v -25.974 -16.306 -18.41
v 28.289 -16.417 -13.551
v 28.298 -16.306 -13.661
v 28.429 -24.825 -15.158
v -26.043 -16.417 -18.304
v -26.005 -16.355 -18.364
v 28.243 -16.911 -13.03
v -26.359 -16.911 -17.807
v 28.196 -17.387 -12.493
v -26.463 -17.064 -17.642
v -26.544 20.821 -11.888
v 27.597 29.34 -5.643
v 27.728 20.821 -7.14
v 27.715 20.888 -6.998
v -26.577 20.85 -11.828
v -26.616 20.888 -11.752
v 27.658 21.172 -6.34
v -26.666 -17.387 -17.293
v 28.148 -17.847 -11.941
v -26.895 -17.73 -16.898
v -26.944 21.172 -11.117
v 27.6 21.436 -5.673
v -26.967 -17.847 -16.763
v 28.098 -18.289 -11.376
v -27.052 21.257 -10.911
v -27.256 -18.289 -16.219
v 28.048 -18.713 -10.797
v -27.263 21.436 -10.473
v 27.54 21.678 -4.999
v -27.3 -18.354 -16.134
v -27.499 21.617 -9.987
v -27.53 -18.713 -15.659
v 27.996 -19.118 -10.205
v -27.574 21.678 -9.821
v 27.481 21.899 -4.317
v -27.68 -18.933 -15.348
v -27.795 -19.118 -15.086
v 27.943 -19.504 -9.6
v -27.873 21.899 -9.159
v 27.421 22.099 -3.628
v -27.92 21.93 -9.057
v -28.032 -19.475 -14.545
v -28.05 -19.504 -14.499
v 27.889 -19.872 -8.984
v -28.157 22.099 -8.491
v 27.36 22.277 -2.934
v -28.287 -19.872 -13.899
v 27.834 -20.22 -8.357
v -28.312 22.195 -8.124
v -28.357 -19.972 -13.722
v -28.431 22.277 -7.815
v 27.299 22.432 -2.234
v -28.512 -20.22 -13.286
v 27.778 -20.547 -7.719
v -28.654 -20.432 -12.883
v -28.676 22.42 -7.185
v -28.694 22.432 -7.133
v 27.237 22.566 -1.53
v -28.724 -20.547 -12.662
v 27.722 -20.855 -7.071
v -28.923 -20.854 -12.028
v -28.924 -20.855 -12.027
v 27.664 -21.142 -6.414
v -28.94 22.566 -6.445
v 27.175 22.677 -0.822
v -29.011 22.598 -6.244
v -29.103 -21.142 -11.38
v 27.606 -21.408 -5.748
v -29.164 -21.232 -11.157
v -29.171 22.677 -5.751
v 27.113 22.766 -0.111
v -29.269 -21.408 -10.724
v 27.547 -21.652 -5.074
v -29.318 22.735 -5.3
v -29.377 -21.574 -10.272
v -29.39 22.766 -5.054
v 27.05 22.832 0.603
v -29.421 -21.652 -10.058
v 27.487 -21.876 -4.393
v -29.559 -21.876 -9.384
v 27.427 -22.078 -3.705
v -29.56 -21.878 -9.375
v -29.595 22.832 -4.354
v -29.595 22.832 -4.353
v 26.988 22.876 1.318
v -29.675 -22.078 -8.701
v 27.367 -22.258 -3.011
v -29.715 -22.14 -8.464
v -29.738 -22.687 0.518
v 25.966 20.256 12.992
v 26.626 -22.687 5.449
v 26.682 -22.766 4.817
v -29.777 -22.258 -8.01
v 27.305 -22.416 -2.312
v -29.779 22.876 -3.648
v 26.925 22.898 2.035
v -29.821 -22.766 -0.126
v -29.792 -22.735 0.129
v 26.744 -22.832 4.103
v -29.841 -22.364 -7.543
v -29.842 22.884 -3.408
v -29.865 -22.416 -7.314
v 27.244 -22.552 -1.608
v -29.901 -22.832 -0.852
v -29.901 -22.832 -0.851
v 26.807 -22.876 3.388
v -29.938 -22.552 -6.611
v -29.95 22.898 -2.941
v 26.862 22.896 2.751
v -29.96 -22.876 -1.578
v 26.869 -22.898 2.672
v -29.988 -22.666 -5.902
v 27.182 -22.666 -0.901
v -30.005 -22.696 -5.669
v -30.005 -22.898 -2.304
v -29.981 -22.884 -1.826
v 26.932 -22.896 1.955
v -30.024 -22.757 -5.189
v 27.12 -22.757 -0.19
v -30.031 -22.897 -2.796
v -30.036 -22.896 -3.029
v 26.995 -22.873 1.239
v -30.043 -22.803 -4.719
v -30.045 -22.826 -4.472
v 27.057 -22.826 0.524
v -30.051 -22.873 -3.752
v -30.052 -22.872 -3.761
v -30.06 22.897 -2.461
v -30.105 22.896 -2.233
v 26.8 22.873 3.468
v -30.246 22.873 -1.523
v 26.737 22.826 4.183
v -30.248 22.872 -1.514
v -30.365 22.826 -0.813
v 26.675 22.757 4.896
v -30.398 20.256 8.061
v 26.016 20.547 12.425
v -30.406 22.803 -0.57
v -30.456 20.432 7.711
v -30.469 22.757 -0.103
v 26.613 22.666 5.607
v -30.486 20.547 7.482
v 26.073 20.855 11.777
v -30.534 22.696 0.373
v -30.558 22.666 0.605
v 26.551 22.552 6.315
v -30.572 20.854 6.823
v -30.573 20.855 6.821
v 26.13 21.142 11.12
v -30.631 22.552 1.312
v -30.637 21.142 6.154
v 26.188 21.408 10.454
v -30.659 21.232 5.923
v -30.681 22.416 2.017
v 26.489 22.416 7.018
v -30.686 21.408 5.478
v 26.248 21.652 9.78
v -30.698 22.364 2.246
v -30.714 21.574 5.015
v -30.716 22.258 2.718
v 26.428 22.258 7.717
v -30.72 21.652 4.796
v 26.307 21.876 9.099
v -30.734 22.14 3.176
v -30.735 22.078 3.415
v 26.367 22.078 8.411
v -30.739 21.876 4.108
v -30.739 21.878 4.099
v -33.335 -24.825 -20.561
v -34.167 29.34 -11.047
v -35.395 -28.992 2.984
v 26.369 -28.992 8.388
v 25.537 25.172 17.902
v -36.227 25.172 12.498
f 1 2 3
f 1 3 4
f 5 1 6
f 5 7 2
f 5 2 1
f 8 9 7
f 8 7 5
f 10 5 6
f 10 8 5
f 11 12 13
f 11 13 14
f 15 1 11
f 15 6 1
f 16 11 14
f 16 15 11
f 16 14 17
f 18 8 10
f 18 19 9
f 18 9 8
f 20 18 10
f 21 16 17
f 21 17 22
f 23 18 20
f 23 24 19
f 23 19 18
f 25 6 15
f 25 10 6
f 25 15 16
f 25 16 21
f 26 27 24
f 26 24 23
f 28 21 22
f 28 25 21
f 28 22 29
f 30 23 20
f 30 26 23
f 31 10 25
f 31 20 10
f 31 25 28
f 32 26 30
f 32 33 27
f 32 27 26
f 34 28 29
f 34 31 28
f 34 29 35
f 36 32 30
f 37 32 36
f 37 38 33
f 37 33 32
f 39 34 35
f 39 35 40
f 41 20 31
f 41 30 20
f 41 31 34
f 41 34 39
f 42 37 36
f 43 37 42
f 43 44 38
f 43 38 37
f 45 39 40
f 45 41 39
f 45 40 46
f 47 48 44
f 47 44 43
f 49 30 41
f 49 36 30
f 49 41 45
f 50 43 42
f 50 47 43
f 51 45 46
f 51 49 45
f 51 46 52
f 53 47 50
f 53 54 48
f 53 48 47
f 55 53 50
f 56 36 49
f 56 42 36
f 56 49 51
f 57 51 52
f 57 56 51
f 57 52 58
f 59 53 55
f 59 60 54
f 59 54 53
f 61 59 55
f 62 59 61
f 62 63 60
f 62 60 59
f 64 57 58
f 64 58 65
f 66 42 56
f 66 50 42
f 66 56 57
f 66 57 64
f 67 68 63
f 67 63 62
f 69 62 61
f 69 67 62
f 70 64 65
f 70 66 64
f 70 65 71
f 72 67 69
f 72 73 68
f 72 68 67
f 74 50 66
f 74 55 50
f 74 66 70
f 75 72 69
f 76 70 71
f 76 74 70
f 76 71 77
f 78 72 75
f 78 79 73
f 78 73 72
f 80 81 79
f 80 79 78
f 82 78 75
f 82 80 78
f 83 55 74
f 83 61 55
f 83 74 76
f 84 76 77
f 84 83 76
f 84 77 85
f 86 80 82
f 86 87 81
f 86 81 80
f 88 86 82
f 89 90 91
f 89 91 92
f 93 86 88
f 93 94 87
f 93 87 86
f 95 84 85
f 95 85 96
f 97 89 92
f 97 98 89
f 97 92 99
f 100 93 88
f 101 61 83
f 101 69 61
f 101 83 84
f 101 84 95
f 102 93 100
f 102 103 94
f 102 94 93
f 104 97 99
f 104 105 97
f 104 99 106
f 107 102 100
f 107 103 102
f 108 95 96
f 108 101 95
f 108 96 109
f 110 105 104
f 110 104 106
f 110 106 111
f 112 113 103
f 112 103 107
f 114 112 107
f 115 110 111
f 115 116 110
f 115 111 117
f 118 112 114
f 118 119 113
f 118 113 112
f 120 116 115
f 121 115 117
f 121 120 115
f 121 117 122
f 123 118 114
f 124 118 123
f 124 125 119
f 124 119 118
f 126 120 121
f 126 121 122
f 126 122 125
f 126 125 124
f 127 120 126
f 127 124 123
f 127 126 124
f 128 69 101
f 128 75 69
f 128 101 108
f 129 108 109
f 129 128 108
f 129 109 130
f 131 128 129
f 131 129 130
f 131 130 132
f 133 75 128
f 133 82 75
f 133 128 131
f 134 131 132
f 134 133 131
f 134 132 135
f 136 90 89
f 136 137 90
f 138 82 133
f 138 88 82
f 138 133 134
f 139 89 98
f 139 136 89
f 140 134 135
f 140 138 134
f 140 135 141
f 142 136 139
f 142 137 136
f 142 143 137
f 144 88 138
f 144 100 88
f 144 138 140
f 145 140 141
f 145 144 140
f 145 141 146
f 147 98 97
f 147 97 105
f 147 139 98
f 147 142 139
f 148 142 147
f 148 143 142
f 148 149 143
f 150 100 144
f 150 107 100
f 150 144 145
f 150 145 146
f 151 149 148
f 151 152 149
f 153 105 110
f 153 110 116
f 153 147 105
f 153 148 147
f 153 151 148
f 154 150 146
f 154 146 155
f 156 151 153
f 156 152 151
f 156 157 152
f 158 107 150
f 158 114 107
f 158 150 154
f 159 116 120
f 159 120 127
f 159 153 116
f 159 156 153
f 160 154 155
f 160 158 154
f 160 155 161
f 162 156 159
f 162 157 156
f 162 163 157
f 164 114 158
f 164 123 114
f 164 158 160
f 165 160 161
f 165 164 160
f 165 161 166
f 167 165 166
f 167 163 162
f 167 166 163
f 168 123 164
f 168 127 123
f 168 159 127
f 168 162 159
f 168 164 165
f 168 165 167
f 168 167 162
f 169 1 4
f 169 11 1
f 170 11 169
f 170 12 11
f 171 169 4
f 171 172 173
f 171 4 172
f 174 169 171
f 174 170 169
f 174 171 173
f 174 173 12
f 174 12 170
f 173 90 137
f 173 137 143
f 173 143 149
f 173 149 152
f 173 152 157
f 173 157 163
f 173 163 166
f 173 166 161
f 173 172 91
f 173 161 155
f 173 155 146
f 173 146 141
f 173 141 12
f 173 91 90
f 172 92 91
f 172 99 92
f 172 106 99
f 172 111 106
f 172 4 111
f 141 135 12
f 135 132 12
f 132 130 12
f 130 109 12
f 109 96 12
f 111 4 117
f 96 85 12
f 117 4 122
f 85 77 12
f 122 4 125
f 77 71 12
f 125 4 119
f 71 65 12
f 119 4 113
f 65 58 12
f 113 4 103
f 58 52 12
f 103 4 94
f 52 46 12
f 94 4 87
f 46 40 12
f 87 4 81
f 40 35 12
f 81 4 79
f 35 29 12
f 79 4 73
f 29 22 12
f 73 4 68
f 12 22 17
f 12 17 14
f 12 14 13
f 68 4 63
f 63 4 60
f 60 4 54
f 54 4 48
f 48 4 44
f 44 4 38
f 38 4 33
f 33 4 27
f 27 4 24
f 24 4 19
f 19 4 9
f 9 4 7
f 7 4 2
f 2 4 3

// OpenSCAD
// file: ../Parameters.scad
//Main tube diameter - hole [mm]
main_tube_outer_diameter = 25.4;
main_tube_inner_diameter = 23.5;

//Tube for undercarriage - hole [mm]
tube_for_undercarriage_outer_diameter = 10.6;
tube_for_undercarriage_inner_diameter = 6;
global_clearance = 0.5;


//umístění podvozkových trubek

second_undercarriage_hole = main_tube_outer_diameter*2 + main_tube_outer_diameter/5 + main_tube_outer_diameter/2 + 170 + 160;

// Parameters of cube couplings
coupling_wall_thickness = main_tube_outer_diameter/5;  //width of coupling walls 
thickness_between_tubes = main_tube_outer_diameter/10;    // minimum distance between tubes in couplings

coupling_wall_thickness_undercarriage = tube_for_undercarriage_outer_diameter/3;
thickness_between_tubes_undercarriage = tube_for_undercarriage_outer_diameter/10;

//Screw diameter and nut for M4 [mm]
M4_screw_diameter=4.5;
Nut_height_M4 = 3.2;
Nut_diameter_M4 = 7.86;


//Screw diameter and nut for M3 [mm]
M3_screw_diameter = 3.2;
Nut_height_M3 = 1.7;	
Nut_diameter_M3 = 6.6; 


//The tube for help
Help_main_tube_outer = 25;
Help_main_tube_inner = 23; 
Help_tube_for_undercarriage_outer = 10;
Help_tube_for_undercarriage_inner = 5;


//main hull parameters

hull_drop_length = 580;
hull_wall_thickness = 0.8;
hull_y_size = 120;
hull_z_size = 150;
hull_x_size = 580;
hull_corner_radius = 4;
hull_airfoil_thickness= 35;  // thickness of drop generating airfoil in percent of lenght.
hull_scale_x = 1;
hull_scale_y = 1.5;
hull_scale_z = 1.5;

main_pilon_position = 170+68;
cover_pilon_position = 180;
height_of_vertical_tube = 275; //278mm je změřená délka trubky. 

ribbon_width = 5; // šířka vyztužovacích lemů. 

// šířka otvoru v přední části kapoty pro držák motoru.
width_of_engine_holder = 63;

//Top Cover Division - dělení horního krytu pro tisk
top_cover_division = [0, 50, 150, 280, 410, hull_x_size]; // upraveny seznam tak, aby deleni začinalo od nuly, což umožňí úplně automatické rozdělení.

//Bottom Cover Division - dělení dolního krytu pro tisk
bottom_cover_division = [0,100,250,365, 470, hull_x_size];
// zkrácená část pro payload pro testovací tisk
//bottom_cover_division = [0,200,250,365, 470, hull_x_size];

//Base Divison - dělení podložky
base_division = [0,140,280,410, hull_x_size];

//Cover pilon division - na výšku (v ose Z)
cover_pilon_division = [0,170,height_of_vertical_tube + main_tube_outer_diameter + coupling_wall_thickness];

//pozice šroubů
	//horní kryt
top_screw_position = [0, (top_cover_division[0] + top_cover_division[1])/4, (top_cover_division[2] - top_cover_division[1])/2 + top_cover_division[1], (top_cover_division[3] - top_cover_division[2])/2 + top_cover_division[2],(top_cover_division[4] - top_cover_division[3])/2 + top_cover_division[3],(top_cover_division[5] - top_cover_division[4])/2 + top_cover_division[4] - 20];
	//spodní kryt
bottom_screw_position = [0,(bottom_cover_division[0] + bottom_cover_division[1])/15 + 5, bottom_cover_division[1]/1.1, + bottom_cover_division[3], bottom_cover_division[3] + bottom_cover_division[1]/2, bottom_cover_division[4] - 6*global_clearance, bottom_cover_division[4] + bottom_cover_division[1]/2.5];




//šířka zámků
lock_width = 10;

//délka zámků
lock_length = 3;


//accumulator
//základní rozměry akumulátoru
width_of_accumulator = 129.4;//45+1;
depth_of_accumulator = 40.61;
height_of_accumulator = 43.65;
//Zapuštění akumulátoru
sink_of_accumulator = 5; //main_tube_outer_diameter/5 - Nut_height_M3*1.5;

//tloušťka hrany spojky
accumulator_holder_width = 18; 
accumulator_holder_thickness = 10; 

//posunutí akumálátoru na podložce
move_of_accumulator = 165;   // pozice akumulátoru (ovlivňuje těžiště)


////////////////
// Senzory
///////////////////

//opticalFlow
    width_optical_flow_senzor = 45.5;
    depth_optical_flow_senzor = 6;
    height_optical_flow_senzor = 35;
    sink_of_optical_flow_senzor = depth_optical_flow_senzor - 5; 
    M3_optical_flow_senzor_Z = 30.4;
    M3_optical_flow_senzor_X = 24;
    M3_optical_flow_senzor_Z_alone = 9.1;
    M3_optical_flow_senzor_X_alone = 16.7;
// main file
include <../Parameters.scad>

joint_size_x = 60; // delka dorazu podle osy x
joint_size_y = 45; //delka dorazu podle osy y

rotx = 25/2;
roty = 10/2;

joint_wall_thickness = 5;




module base(){

    bearing_efsm_ag = bearing_efsm_12_ag;
    bearing_efsm_a1 = bearing_efsm_12_a1;
    bearing_efsm_h = bearing_efsm_12_h;

    difference(){
        union(){


                difference(){
                intersection(){
                    rotate([0, 90, 0])
                        translate([0,0,-50])
                            cylinder(d=joint_size_y, h=100, $fn=200);

                    rotate([90, 0, 0])
                        translate([0, 0, -50])
                            cylinder(d=joint_size_x, h=100, $fn=200);


                    rotate([90+rotx/2, 0, 0])
                        translate([0, 0, -50])
                            cylinder(d=joint_size_x, h=100, $fn=200);


                    rotate([90+rotx, 0, 0])
                        translate([0, 0, -50])
                            cylinder(d=joint_size_x, h=100, $fn=200);


                    rotate([90-rotx, 0, 0])
                        translate([0, 0, -50])
                            cylinder(d=joint_size_x, h=100, $fn=200);


                    rotate([0, 90+roty, 0])
                        translate([0, 0, -50])
                            cylinder(d=joint_size_y, h=100, $fn=200);

                    rotate([0, 90-roty, 0])
                        translate([0, 0, -50])
                            cylinder(d=joint_size_y, h=100, $fn=200);

                }

        // plošky na svrchní straně
                for (i=[[rotx, 0, 0], [-rotx, 0, 0], [0, roty, 0], [0, -roty, 0],
                        [rotx, roty, 0], [-rotx, roty, 0], [rotx, roty, 0], [rotx, -roty, 0],
                        [rotx, -roty, 0], [-rotx, -roty, 0], [-rotx, roty, 0], [-rotx, -roty, 0]]) {
                    rotate(i)
                        translate([-50, -50, bearing_efsm_ag - bearing_efsm_a1])
                            cube(100);
                }
            }


            x = joint_size_x + joint_wall_thickness*2;
            y = joint_size_y + joint_wall_thickness*2;

            difference(){
                translate([-x/2, -y/2, -25])
                    cube([x, y, 40]);

                // plošky na svrchní straně
                translate([0,0,0])
                for (i=[[rotx, 0, 0], [-rotx, 0, 0], [0, roty, 0], [0, -roty, 0],
                        [rotx, roty, 0], [-rotx, roty, 0], [rotx, roty, 0], [rotx, -roty, 0],
                        [rotx, -roty, 0], [-rotx, -roty, 0], [-rotx, roty, 0], [-rotx, -roty, 0]]) {
                    rotate(i)
                        translate([-40, -40, -13])
                            cube(80);
                }
            }


        }

        translate([-bearing_efsm_h/2, -bearing_efsm_h/2, -bearing_efsm_a1])
            cube([bearing_efsm_h, bearing_efsm_h, 100]);

        translate([0, 0, -50])
            cylinder(h=100, d=bearing_efsm_12_db);
    }
}



module plate(angle = [10, 10], depth = 5){
    x = joint_size_x + joint_wall_thickness*2;
    y = joint_size_y + joint_wall_thickness*2;
    wall = 2;


    difference(){
        union(){
            translate([-x/2,-y/2, -depth+7])
                cube([x-8, y, depth + wall + 2]);

        }
        //#translate([-joint_size_x/2, -joint_size_y/2, -0.1])
        //    cube([joint_size_x, joint_size_y, 10]);

        intersection(){

            translate([-x/2,-y/2, -depth/2-3])
                cube([x, y, depth]);

            rotate([0, 90, 0])
                translate([0,0,-50])
                    cylinder(d=joint_size_y + 0.8, h=100, $fn=200);

            rotate([90, 0, 0])
                translate([0, 0, -50])
                    cylinder(d=joint_size_x + 0.8, h=100, $fn=200);
        }
    }
}


module plate_part(rotation, depth){

    x = rotation[0];
    y = rotation[1];

    sphere(r=5);

    intersection(){
        hull(){
            rotate([x, y, 0])
            translate([0,0,depth])
                intersection(){
                    rotate([0, 90, 0])
                        translate([0,0,-50])
                            cylinder(d=50, h=100);
                    translate([-50, -50, 0])
                        cube([100, 100, 30]);
                }
            }
        }
}




union(){
    //base();
      difference(){
        color([0.7, 0.5, 0.5, 0.85]) rotate([10, -5 , 0]) plate([5,5], 20);
        translate([28, -50, -10]) cube(100);
        //translate([-50, 20, -10]) cube(100);
    }
}

//plate_part([-2,2], 7);
